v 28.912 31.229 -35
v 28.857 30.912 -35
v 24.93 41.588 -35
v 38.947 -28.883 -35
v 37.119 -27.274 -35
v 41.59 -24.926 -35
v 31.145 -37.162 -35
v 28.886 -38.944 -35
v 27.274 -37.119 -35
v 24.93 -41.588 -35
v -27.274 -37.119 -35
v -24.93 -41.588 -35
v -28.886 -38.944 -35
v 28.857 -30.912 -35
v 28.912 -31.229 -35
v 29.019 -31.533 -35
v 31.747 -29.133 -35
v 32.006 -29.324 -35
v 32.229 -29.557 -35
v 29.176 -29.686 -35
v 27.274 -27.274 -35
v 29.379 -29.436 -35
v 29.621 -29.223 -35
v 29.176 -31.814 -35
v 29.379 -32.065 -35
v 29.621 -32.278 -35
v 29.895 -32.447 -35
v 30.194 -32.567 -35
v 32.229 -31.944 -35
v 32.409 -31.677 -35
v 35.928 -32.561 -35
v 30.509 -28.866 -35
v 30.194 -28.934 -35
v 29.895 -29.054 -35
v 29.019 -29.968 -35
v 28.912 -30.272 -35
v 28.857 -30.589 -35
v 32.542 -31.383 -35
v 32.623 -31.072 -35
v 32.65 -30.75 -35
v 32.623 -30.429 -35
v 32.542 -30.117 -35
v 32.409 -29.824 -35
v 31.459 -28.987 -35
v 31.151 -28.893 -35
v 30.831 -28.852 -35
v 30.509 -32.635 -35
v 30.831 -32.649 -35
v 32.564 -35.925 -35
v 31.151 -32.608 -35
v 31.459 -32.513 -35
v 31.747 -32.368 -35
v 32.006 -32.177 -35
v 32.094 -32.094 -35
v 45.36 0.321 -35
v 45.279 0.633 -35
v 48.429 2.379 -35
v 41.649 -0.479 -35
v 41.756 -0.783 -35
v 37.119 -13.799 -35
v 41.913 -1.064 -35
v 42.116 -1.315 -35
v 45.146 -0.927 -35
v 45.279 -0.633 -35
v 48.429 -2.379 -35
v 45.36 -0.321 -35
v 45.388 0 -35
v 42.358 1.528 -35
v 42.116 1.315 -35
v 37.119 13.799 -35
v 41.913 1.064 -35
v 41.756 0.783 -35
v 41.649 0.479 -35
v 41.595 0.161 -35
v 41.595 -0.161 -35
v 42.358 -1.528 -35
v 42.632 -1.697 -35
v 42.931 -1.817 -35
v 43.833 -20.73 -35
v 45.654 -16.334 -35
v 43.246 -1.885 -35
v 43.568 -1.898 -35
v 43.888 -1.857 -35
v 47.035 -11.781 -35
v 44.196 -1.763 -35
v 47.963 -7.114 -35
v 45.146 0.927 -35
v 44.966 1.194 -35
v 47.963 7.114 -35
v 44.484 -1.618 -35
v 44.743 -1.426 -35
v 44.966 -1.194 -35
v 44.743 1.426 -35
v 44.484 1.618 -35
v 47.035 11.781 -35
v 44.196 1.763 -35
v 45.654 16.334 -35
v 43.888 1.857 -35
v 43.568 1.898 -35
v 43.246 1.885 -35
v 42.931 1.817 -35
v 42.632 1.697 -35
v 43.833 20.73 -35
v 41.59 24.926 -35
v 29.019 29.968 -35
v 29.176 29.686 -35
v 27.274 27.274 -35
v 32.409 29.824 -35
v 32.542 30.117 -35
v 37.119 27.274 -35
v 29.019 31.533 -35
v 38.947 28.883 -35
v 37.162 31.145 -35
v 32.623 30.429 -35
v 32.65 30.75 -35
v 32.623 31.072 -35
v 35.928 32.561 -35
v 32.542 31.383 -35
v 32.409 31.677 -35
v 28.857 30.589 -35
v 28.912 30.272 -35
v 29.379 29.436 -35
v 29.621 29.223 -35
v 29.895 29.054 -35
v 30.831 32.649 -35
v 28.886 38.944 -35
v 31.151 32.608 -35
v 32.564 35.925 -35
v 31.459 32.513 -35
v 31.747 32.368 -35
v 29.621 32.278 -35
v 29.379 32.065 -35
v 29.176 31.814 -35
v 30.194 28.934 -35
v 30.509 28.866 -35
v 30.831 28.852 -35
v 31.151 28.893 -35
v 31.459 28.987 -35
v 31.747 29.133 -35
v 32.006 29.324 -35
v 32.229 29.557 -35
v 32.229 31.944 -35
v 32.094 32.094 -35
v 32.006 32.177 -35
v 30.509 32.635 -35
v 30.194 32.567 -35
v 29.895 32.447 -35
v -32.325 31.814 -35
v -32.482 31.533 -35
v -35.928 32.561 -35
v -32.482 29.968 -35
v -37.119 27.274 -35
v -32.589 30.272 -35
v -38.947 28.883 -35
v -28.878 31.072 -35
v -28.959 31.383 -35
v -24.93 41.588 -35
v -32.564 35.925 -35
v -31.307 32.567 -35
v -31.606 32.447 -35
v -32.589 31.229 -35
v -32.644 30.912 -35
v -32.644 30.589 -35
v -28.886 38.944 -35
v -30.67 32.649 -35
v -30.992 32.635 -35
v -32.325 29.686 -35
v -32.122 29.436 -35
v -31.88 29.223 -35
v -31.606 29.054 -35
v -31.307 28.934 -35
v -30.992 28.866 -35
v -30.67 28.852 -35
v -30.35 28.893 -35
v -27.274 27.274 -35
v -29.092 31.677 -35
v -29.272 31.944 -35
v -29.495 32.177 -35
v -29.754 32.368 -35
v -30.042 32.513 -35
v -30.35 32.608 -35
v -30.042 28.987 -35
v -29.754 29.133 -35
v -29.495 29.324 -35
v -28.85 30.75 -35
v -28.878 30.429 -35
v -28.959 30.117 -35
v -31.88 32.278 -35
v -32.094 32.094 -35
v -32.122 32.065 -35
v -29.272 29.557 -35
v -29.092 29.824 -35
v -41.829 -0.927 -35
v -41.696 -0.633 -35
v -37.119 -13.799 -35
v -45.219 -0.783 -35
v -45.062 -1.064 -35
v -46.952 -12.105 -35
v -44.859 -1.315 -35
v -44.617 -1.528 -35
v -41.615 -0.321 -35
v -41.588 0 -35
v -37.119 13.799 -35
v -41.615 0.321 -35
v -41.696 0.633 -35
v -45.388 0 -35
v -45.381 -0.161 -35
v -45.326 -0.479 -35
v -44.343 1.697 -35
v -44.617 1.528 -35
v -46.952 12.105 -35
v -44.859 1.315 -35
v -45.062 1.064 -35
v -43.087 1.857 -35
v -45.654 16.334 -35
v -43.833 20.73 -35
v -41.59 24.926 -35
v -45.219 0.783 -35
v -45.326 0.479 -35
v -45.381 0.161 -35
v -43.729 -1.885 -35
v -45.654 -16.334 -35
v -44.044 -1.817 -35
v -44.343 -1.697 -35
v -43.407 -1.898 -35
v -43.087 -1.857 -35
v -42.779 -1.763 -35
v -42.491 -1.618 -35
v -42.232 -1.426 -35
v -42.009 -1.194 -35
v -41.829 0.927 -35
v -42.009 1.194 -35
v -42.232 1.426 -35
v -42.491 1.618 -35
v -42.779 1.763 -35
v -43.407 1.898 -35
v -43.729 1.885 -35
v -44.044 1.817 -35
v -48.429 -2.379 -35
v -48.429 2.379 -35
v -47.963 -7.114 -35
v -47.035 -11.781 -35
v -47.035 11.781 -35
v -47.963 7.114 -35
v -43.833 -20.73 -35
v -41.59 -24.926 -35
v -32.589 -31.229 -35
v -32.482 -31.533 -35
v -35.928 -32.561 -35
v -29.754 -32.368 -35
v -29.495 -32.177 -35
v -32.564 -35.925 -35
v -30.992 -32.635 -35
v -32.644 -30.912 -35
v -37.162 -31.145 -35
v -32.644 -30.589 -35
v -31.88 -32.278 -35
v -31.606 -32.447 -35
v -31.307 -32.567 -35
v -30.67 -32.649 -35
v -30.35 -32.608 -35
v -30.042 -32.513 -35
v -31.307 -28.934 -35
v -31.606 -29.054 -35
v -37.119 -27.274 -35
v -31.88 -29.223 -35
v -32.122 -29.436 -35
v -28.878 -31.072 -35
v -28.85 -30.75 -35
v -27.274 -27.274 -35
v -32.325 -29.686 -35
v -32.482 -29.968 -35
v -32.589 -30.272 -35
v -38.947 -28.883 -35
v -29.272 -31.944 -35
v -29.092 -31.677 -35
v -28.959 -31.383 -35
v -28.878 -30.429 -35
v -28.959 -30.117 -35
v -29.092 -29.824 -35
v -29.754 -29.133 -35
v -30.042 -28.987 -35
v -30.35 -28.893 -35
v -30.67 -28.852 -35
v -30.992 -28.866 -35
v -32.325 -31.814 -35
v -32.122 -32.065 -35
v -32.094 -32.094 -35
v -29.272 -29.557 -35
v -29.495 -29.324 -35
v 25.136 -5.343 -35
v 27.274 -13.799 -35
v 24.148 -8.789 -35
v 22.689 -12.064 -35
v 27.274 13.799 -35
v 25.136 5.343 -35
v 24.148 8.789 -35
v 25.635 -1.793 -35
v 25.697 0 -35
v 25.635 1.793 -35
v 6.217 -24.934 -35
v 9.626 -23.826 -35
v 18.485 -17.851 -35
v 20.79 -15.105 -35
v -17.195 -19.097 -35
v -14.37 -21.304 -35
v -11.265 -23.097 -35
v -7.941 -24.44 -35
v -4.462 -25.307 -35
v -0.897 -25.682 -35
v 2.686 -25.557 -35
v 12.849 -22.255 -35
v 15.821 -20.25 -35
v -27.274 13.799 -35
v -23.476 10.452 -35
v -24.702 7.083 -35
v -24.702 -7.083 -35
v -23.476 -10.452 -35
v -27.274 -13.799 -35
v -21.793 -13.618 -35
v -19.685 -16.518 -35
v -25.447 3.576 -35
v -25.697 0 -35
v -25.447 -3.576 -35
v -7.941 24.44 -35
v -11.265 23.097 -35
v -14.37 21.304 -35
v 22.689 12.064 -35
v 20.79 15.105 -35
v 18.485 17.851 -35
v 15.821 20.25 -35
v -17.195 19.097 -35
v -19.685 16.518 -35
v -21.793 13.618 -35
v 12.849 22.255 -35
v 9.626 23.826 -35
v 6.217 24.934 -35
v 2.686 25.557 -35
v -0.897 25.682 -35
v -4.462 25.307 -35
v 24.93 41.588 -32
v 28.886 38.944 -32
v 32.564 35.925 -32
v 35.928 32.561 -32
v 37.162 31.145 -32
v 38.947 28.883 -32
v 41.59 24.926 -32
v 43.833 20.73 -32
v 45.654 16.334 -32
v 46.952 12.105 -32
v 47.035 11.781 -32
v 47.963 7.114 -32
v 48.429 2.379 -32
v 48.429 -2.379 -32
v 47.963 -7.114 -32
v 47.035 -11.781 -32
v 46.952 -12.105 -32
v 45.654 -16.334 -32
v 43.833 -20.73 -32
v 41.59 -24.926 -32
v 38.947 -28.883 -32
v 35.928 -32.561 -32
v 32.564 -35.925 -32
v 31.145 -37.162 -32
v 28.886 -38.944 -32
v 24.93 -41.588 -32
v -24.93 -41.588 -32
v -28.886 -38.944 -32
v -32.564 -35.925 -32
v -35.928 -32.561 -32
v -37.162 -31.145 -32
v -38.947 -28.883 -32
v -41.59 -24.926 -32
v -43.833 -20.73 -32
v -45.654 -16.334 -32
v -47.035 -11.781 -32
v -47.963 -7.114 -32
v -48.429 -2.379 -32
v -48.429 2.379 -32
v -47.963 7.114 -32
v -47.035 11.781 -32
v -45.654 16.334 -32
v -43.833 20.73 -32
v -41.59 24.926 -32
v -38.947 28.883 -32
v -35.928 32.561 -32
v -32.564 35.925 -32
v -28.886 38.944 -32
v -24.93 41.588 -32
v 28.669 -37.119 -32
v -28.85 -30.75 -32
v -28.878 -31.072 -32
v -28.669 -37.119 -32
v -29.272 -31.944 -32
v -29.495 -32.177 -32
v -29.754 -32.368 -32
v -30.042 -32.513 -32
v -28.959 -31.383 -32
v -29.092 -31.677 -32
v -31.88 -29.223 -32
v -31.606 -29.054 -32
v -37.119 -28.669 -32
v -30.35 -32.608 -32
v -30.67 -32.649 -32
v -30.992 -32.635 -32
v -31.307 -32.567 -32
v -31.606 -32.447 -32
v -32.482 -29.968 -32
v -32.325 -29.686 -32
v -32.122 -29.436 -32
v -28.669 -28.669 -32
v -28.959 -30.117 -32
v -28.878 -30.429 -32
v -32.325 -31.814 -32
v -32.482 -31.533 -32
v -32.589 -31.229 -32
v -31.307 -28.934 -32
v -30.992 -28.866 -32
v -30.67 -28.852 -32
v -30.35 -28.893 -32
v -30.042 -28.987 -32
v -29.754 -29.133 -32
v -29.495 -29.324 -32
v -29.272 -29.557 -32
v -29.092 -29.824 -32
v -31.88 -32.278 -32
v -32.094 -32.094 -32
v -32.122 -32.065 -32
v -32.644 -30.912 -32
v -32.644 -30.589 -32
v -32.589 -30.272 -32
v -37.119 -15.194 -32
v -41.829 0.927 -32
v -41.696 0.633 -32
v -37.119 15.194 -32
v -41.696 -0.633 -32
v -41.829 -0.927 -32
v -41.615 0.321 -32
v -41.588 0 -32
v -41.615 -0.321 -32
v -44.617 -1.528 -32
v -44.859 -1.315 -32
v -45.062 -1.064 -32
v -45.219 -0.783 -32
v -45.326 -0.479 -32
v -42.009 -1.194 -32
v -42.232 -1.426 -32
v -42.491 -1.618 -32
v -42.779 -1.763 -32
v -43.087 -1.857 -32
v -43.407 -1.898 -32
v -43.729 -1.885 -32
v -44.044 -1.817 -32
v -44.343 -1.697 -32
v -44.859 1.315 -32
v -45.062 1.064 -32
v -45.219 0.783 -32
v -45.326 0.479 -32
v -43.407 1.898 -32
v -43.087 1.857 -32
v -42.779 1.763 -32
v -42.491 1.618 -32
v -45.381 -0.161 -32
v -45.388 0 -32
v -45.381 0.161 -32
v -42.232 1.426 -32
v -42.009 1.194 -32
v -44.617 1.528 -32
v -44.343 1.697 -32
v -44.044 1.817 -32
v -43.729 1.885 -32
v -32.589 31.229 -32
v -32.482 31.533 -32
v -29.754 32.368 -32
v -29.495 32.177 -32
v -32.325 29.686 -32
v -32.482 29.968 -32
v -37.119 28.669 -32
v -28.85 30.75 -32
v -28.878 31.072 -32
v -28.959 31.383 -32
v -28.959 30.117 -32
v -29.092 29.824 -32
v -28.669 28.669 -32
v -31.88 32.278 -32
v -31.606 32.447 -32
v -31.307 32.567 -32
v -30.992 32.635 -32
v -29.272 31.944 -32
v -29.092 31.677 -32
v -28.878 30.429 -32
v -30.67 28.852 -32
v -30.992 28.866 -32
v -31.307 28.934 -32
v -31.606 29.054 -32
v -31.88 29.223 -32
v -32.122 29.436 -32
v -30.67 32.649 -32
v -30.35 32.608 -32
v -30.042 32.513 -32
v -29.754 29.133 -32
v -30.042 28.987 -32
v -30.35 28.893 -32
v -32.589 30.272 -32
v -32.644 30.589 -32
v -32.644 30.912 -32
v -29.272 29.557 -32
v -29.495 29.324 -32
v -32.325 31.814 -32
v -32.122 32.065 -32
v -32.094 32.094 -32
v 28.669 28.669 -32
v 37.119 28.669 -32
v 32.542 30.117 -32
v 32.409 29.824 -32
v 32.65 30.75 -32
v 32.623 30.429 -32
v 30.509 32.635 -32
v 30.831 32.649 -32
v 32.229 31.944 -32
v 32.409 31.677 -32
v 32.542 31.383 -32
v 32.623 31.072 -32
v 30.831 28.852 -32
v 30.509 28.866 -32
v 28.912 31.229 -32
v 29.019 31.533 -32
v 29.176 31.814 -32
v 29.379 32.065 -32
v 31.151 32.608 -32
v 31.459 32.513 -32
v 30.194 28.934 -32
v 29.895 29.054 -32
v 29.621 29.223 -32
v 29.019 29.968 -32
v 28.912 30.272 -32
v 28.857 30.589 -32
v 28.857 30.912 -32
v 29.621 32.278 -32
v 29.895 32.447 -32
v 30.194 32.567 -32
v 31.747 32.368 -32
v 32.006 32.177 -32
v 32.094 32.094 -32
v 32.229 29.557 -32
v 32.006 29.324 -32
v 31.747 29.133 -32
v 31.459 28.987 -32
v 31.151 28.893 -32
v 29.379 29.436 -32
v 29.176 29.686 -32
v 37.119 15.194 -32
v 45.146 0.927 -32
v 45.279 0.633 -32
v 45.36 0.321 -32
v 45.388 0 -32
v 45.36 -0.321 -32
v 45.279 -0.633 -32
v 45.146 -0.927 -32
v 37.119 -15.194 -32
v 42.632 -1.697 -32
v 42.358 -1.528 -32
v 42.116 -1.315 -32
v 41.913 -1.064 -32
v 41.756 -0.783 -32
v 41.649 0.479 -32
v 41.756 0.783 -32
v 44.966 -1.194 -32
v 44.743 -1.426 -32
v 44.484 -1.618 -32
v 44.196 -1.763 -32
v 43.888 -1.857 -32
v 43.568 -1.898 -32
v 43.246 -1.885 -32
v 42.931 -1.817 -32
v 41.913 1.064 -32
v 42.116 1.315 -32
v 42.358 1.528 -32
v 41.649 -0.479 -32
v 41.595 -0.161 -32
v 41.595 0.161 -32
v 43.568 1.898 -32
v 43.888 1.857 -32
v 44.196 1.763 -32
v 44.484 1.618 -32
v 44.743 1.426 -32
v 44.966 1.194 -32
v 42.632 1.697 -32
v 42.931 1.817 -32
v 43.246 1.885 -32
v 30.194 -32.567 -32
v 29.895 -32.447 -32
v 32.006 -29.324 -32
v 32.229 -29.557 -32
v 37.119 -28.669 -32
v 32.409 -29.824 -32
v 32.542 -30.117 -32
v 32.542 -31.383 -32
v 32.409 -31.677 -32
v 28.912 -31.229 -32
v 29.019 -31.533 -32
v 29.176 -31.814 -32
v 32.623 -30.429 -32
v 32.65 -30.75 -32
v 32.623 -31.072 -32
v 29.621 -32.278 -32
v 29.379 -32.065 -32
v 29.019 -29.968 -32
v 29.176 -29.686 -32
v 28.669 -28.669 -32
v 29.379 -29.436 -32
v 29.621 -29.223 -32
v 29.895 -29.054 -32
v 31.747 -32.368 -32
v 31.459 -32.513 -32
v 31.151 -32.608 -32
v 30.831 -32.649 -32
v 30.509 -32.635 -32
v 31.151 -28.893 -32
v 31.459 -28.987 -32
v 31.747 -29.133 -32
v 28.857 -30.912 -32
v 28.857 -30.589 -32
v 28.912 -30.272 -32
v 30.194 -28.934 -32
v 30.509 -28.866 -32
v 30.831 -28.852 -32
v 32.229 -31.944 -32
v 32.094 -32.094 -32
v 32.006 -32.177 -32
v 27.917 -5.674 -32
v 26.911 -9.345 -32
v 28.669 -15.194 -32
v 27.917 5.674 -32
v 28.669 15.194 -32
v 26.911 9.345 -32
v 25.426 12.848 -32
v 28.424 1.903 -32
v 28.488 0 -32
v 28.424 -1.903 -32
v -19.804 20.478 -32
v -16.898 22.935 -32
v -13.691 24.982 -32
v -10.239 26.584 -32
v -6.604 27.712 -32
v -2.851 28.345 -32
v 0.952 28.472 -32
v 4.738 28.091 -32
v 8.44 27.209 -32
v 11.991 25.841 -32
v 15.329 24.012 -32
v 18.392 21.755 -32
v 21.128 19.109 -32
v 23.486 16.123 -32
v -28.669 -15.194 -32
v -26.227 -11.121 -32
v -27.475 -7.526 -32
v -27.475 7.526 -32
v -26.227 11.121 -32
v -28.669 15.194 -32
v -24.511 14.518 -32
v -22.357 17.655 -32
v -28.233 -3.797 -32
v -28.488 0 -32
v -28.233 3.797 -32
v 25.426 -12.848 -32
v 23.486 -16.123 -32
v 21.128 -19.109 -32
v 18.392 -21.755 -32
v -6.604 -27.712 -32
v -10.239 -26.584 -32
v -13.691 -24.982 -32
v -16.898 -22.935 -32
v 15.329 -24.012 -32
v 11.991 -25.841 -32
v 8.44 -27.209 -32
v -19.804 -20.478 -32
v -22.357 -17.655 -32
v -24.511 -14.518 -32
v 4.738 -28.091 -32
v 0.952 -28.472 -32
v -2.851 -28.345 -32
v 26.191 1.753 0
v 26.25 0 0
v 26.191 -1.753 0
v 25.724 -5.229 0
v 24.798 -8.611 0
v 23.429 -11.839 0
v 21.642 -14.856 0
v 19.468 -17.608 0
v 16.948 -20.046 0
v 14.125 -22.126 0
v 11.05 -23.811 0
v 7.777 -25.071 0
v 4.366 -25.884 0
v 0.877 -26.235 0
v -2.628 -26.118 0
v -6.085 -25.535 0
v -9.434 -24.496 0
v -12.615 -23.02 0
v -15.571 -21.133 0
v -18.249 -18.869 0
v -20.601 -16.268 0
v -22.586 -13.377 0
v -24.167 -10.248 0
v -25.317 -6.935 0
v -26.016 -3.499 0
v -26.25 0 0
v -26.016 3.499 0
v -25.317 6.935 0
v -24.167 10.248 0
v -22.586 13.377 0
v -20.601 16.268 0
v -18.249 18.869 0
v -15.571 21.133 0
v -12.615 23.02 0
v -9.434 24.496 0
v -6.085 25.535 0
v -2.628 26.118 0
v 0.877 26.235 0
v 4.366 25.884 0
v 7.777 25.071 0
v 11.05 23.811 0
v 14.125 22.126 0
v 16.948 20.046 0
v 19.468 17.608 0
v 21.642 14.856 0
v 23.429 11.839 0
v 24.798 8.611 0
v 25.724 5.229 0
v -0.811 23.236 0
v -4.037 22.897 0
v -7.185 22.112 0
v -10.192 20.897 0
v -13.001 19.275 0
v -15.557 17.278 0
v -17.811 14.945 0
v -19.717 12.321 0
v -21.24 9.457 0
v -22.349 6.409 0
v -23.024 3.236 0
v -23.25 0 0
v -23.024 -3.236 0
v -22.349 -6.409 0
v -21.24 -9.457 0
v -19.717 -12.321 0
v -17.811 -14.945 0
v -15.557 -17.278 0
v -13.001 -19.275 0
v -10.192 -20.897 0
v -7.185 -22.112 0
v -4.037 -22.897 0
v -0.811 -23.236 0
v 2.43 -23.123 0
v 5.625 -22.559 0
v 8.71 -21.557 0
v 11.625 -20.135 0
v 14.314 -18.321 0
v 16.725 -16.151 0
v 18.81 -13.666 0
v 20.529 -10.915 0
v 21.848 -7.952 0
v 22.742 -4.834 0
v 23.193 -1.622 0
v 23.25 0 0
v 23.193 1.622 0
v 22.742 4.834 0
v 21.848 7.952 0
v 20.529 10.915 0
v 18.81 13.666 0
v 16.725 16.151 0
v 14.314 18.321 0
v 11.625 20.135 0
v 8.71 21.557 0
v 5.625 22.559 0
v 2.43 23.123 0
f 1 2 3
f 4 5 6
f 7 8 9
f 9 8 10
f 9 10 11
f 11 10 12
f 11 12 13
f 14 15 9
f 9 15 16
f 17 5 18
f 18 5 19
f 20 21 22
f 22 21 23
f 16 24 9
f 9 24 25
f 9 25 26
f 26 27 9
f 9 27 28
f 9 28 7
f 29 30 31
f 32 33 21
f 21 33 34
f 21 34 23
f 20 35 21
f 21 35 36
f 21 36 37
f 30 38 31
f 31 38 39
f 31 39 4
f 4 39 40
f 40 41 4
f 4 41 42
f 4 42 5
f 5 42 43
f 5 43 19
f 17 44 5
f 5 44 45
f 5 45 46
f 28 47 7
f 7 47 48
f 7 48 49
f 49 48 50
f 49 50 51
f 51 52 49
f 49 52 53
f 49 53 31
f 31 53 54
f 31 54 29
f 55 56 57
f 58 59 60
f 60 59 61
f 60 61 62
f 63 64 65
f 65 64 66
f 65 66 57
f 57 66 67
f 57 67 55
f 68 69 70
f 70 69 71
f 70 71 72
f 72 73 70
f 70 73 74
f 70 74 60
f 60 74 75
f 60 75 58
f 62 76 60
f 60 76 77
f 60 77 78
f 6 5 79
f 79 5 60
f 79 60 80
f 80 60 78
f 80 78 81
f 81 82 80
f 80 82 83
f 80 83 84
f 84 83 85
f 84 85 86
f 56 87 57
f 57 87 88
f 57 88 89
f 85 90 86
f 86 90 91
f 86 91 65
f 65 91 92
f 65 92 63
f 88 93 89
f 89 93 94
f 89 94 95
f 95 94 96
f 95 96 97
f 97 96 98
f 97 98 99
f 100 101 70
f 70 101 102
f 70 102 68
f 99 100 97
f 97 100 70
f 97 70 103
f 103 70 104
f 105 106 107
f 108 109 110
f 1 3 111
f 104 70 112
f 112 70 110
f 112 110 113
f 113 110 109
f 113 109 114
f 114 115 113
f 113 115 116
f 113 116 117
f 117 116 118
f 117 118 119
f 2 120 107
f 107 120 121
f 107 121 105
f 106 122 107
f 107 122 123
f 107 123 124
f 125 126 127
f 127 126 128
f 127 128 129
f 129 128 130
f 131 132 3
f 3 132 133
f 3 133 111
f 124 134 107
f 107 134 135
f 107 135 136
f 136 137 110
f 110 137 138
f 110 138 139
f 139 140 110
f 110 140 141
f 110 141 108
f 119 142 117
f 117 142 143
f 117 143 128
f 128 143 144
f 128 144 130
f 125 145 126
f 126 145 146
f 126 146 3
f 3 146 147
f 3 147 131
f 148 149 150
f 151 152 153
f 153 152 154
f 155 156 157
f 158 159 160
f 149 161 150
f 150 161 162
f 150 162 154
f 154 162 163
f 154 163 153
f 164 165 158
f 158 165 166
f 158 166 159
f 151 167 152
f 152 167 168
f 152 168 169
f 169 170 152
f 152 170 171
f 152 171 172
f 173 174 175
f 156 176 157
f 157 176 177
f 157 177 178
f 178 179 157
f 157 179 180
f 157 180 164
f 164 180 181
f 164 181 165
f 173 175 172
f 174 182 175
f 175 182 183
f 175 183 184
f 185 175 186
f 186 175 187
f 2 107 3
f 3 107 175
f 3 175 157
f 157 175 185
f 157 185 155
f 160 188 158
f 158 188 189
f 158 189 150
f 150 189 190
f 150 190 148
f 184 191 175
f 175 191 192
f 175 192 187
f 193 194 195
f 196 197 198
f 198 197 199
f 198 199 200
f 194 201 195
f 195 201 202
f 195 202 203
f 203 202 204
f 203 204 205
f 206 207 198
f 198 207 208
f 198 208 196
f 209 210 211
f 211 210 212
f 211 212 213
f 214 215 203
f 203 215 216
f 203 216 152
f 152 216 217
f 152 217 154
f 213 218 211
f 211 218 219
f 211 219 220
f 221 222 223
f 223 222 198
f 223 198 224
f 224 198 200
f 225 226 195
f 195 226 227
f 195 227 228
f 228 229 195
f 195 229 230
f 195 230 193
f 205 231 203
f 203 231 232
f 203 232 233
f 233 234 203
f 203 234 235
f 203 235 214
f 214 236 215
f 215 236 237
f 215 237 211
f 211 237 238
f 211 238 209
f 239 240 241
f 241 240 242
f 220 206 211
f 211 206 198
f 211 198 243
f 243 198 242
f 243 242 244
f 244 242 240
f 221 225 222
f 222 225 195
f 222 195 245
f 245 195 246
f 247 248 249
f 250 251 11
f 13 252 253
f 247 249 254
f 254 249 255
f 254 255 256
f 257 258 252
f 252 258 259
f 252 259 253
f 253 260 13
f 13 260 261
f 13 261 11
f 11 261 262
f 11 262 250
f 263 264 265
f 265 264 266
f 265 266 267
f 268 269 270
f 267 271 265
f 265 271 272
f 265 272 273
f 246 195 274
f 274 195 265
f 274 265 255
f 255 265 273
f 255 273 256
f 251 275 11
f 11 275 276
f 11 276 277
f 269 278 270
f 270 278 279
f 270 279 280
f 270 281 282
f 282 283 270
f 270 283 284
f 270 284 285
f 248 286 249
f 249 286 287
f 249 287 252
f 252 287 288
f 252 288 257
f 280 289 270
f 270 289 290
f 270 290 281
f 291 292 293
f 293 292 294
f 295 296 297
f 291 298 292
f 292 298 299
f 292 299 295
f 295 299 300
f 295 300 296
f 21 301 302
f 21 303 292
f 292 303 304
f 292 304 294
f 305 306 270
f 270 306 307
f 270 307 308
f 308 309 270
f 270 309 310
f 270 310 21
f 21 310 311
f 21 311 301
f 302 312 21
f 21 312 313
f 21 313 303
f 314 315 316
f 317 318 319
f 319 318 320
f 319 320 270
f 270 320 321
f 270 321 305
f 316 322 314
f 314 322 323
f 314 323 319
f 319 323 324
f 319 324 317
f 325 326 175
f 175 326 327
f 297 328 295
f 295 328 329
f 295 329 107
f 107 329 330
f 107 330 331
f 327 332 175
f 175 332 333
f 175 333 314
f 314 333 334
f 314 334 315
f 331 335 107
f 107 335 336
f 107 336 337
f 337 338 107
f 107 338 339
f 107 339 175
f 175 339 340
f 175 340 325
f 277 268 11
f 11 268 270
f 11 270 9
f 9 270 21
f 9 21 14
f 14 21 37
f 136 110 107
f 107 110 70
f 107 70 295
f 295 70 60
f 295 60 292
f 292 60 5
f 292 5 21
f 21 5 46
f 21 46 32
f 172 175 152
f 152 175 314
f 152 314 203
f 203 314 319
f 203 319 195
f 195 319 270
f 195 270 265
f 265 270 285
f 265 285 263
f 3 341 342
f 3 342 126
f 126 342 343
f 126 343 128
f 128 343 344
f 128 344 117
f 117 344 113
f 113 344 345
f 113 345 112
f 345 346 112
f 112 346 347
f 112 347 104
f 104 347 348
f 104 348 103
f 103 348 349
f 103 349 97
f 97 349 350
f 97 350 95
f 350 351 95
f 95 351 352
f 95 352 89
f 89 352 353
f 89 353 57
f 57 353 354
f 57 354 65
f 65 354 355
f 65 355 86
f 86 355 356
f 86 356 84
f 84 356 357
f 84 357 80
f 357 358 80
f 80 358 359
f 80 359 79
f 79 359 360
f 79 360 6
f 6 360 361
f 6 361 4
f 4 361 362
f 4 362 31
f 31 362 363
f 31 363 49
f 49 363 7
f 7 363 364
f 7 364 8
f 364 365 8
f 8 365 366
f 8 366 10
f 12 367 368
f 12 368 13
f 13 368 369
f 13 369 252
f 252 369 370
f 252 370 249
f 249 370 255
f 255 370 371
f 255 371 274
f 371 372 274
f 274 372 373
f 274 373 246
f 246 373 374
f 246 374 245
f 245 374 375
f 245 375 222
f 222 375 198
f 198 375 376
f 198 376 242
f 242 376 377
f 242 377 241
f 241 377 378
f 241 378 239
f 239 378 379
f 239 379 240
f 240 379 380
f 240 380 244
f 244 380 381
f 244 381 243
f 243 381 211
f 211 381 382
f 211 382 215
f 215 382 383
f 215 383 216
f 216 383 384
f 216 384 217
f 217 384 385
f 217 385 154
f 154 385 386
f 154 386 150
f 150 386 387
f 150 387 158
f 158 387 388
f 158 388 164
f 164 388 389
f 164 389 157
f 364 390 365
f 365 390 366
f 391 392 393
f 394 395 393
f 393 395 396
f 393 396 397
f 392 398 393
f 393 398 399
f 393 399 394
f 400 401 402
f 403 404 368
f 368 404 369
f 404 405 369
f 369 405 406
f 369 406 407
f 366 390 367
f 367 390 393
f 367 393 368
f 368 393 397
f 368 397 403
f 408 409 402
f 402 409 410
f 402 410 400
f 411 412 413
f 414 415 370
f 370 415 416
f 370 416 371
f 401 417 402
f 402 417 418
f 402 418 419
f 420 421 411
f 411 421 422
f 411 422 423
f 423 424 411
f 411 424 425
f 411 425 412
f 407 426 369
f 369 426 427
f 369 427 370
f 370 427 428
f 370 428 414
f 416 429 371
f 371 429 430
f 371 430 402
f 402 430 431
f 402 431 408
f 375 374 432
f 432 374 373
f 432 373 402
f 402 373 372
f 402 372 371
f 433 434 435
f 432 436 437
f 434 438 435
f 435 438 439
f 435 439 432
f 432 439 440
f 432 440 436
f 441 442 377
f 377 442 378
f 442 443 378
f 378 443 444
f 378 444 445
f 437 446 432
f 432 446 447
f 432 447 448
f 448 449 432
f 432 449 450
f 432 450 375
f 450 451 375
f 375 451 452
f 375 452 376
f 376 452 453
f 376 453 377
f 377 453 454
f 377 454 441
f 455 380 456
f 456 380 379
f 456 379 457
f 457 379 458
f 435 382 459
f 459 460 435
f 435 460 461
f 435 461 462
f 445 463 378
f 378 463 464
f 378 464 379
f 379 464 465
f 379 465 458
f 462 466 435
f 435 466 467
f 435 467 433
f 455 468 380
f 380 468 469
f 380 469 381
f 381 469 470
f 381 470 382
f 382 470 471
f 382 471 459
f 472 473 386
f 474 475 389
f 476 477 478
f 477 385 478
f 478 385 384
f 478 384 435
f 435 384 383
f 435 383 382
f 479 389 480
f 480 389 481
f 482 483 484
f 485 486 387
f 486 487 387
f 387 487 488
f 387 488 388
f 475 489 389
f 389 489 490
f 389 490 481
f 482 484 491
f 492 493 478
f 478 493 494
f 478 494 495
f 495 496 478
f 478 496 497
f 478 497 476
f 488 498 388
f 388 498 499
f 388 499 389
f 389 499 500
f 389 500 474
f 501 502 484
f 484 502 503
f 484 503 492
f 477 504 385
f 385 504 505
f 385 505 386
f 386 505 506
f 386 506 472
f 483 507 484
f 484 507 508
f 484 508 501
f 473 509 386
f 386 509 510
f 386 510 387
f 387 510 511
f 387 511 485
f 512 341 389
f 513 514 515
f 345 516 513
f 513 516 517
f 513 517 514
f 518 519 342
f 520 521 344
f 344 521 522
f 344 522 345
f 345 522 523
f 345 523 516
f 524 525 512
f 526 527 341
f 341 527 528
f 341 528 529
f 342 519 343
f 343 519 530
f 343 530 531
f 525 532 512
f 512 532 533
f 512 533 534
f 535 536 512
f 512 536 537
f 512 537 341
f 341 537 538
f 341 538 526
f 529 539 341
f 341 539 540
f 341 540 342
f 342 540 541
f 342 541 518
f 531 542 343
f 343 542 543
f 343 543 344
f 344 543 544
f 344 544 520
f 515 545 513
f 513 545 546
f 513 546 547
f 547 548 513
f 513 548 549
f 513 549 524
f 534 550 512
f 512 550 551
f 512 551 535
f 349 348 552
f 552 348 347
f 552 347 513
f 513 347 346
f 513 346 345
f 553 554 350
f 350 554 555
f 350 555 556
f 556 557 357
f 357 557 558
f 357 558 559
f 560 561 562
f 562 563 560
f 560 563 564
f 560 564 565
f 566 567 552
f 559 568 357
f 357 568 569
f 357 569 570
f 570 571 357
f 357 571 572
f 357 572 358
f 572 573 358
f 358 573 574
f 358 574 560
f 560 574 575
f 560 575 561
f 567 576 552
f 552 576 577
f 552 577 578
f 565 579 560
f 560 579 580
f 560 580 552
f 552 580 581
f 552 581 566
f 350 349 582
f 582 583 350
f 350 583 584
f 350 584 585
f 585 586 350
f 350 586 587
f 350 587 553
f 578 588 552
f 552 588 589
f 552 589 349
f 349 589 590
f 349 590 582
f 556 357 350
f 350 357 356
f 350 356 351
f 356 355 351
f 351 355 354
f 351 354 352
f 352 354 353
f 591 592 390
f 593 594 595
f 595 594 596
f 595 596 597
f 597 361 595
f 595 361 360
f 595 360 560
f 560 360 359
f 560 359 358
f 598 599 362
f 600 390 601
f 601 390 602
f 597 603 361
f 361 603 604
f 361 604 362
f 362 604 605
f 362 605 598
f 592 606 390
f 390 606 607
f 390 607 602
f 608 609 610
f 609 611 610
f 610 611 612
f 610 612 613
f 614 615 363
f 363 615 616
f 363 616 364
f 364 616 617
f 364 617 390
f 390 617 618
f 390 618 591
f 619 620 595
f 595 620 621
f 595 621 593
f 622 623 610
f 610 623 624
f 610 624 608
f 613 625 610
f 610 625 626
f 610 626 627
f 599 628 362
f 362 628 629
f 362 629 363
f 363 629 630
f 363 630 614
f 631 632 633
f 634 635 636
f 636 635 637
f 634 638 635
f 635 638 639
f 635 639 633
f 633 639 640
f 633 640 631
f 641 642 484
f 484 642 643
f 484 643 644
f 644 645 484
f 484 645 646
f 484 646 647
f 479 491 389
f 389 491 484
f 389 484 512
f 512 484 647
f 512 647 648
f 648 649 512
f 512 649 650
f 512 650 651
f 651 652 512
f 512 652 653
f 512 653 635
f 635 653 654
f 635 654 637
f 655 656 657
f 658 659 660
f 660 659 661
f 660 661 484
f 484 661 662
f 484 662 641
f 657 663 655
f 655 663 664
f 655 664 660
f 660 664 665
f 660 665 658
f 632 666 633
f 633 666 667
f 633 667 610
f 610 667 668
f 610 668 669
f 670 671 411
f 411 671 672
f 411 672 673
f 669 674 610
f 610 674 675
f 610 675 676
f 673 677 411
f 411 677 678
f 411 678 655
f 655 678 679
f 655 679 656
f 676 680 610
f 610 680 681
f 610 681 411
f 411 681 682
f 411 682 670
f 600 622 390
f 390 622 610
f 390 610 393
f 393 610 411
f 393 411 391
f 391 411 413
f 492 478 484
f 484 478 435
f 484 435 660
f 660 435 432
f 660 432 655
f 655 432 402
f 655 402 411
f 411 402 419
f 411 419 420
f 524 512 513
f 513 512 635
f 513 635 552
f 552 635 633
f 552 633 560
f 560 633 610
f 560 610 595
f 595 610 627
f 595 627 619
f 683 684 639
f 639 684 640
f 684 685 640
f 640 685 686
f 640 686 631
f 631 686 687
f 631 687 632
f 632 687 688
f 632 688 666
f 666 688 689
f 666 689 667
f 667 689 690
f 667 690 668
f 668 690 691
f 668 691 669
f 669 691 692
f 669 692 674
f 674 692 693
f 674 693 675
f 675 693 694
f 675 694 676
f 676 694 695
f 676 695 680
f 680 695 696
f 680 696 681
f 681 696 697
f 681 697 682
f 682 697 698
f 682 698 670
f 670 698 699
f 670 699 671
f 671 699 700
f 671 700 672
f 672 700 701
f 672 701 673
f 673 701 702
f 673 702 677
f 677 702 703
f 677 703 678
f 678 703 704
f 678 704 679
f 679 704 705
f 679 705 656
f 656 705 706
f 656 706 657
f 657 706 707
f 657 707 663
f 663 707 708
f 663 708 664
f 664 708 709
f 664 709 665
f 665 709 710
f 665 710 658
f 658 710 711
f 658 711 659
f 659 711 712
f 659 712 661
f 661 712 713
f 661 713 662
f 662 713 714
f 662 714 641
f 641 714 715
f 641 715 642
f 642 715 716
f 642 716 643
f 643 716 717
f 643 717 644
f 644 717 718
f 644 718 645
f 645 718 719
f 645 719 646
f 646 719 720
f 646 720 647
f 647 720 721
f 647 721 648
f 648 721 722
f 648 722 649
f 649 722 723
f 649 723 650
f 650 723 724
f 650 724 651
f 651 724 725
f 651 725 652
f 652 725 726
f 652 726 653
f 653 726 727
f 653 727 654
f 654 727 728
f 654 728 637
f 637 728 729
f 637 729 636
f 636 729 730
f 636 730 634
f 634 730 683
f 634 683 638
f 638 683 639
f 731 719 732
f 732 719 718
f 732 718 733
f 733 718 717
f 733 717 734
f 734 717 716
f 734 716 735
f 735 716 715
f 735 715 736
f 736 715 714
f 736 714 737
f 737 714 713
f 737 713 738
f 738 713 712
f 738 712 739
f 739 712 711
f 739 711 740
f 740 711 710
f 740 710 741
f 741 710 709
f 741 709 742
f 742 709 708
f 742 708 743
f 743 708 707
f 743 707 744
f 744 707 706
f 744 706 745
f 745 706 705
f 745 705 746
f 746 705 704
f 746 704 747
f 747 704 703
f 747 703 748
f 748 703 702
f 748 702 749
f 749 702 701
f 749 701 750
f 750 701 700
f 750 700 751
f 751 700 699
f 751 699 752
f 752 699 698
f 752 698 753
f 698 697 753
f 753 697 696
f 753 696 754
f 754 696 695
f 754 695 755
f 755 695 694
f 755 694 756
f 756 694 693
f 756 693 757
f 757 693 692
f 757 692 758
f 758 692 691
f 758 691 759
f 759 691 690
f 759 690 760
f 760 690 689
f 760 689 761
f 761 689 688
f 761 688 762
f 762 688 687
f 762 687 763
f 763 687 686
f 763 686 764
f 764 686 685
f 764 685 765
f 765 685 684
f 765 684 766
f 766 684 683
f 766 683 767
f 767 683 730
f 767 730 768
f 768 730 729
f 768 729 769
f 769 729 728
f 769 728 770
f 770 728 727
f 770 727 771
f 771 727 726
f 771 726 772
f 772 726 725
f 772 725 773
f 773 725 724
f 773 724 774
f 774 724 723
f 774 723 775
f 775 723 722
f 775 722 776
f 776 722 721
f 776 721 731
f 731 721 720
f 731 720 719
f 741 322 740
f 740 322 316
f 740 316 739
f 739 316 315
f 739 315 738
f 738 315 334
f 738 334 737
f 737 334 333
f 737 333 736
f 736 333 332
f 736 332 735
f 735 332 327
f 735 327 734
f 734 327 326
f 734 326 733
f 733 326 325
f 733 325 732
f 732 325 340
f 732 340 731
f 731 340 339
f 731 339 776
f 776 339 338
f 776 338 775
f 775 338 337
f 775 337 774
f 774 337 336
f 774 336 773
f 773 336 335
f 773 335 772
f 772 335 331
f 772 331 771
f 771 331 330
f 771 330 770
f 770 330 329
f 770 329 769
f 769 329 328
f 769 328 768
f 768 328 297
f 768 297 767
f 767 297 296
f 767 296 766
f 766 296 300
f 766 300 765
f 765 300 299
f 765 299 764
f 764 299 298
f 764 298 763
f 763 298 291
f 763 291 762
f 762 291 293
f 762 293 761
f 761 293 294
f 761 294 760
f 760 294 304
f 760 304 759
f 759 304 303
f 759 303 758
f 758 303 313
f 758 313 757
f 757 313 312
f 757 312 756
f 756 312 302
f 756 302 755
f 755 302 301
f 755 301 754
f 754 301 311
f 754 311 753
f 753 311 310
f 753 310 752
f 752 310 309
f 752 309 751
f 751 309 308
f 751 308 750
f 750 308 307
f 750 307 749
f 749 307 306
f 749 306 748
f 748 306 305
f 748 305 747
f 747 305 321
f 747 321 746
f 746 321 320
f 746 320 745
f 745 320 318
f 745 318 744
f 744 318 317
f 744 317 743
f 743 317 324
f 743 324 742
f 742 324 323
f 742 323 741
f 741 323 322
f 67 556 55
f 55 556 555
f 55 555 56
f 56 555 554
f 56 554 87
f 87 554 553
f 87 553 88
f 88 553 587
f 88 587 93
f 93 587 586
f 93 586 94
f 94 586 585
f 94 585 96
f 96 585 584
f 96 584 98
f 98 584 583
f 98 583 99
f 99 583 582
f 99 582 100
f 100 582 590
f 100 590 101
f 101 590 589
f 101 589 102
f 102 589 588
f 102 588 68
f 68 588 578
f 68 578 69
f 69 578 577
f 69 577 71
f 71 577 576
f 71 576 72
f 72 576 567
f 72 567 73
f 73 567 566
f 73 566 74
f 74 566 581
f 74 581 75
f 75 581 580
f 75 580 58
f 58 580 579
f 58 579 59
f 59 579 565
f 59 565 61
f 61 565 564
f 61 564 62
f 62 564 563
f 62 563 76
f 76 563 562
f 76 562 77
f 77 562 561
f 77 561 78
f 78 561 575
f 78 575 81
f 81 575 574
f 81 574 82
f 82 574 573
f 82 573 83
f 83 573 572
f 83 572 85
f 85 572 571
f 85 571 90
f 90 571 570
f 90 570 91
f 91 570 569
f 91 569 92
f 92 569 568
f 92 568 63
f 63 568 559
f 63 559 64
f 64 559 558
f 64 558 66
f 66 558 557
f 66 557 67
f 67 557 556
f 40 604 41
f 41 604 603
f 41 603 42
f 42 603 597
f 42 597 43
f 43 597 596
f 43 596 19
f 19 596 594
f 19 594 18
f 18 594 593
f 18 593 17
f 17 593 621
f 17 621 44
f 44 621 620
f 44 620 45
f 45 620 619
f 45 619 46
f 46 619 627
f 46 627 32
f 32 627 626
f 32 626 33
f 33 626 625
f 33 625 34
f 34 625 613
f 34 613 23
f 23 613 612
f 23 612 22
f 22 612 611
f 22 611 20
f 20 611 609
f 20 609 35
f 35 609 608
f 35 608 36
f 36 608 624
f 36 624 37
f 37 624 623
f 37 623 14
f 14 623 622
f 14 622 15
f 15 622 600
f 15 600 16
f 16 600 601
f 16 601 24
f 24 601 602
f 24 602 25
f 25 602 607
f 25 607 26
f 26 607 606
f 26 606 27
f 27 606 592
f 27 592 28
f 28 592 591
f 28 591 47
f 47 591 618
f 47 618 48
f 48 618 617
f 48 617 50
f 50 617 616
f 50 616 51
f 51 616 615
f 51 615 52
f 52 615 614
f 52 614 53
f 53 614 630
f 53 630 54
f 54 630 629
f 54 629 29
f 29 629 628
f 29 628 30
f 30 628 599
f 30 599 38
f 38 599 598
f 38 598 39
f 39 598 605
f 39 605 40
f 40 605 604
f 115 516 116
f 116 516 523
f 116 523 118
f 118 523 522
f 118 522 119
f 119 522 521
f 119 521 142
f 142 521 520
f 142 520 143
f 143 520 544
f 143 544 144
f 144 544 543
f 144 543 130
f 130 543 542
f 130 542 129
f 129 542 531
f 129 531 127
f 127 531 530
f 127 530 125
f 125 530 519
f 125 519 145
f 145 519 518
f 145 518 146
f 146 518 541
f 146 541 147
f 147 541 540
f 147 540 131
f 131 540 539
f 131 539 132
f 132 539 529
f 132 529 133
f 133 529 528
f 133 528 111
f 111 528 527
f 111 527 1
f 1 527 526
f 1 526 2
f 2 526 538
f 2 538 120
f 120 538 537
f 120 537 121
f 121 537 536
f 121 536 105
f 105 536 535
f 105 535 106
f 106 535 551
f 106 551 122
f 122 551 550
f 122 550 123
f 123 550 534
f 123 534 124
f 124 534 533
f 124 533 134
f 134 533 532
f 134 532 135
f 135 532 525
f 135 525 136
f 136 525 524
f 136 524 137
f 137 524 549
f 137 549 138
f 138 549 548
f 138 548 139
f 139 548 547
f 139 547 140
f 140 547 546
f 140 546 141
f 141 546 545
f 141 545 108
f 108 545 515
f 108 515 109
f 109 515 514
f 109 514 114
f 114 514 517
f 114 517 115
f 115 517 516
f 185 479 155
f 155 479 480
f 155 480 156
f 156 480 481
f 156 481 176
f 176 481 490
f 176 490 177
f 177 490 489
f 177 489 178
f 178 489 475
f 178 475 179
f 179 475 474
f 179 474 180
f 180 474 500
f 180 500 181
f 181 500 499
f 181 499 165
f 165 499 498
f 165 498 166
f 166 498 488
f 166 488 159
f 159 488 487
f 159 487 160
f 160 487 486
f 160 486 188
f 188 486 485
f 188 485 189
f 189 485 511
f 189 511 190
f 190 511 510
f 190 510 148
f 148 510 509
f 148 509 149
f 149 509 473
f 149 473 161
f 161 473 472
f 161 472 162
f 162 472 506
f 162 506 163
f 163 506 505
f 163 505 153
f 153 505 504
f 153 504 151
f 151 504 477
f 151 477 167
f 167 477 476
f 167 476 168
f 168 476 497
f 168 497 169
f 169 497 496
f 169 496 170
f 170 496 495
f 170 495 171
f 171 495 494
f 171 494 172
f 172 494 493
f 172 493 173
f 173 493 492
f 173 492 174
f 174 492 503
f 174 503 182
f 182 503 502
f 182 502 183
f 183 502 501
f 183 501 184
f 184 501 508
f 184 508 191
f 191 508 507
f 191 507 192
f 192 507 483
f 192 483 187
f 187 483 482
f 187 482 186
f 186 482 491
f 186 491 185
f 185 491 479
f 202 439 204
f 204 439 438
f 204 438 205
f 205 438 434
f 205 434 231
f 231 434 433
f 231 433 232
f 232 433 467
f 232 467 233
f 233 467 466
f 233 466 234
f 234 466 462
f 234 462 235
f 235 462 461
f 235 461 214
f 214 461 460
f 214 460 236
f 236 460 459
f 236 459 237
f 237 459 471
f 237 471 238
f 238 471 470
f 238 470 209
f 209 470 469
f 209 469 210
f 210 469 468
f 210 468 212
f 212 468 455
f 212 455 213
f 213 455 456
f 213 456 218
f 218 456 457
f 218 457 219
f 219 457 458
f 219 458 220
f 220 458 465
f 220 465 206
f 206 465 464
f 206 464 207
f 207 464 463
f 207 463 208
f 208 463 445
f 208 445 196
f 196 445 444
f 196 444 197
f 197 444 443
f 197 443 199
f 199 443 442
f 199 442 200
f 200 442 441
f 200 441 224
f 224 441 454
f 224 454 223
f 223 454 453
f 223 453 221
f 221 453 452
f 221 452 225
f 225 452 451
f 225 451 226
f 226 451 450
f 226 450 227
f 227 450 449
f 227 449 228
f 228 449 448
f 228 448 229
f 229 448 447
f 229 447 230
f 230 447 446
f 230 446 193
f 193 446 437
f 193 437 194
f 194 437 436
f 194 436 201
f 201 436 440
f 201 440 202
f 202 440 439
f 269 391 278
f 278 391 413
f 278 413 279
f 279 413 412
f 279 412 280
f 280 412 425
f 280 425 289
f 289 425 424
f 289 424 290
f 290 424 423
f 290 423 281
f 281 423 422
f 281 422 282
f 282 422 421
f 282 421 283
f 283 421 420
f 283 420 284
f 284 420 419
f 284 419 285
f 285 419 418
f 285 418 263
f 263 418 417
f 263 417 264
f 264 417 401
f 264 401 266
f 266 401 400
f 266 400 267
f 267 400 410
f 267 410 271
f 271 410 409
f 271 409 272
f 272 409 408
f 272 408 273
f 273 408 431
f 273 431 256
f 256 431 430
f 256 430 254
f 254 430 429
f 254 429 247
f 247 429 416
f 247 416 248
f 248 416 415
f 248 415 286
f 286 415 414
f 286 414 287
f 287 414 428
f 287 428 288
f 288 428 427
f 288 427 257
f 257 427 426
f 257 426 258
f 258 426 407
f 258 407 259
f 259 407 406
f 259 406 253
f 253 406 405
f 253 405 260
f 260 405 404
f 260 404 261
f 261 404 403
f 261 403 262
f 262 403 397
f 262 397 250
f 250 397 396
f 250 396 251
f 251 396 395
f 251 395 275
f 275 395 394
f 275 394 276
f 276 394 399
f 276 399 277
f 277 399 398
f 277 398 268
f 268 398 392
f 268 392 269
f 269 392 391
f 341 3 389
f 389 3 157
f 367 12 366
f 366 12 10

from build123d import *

# Parameters (mm, degrees)
SKETCH3_R          = 1.9
CUT_EXTRUDE1_DEPTH = 4
CIRPATTERN1_COUNT  = 8
SKETCH4_W          = 196.975315964
SKETCH4_H          = 183.175315964
SKETCH4_W_2        = 96.975315964
SKETCH4_H_2        = 83.175315964
CUT_EXTRUDE2_DEPTH = 4


with BuildPart() as part:
    # Sketch2 → Revolve1 (revolve)
    with BuildSketch(Plane(origin=(0, 0, 0), x_dir=(1, 0, 0), z_dir=(0, 1, 0))):
        Polygon((-28.697438418, 35), (-26.25, 0), (-23.25, 0), (-25.697438418, 35), align=None)
        Polygon((-28.487657982, 32), (-28.697438418, 35), (-48.487657982, 35), (-48.487657982, 32), align=None)
    revolve(axis=Axis((0, 0, 0), (0, 0, -1)))

    # Sketch3 → Cut-Extrude1 (cut, through all)
    with BuildSketch(Plane.XY.offset(-32)):
        with Locations((43.487657982, 0)):
            Circle(SKETCH3_R)
    cut_extrude1 = extrude(amount=-CUT_EXTRUDE1_DEPTH, mode=Mode.SUBTRACT)

    # CirPattern1: Cut-Extrude1 ×8 about axis
    cirpattern1_axis = Axis((0, 0, 0), (0, 0, 1))
    for i in range(1, CIRPATTERN1_COUNT):
        add(cut_extrude1.rotate(cirpattern1_axis, i * 360 / CIRPATTERN1_COUNT), mode=Mode.SUBTRACT)

    # Sketch4 → Cut-Extrude2 (cut, through all)
    with BuildSketch(Plane.XY.offset(-32)):
        Rectangle(SKETCH4_W, SKETCH4_H)
        Rectangle(SKETCH4_W_2, SKETCH4_H_2, mode=Mode.SUBTRACT)
    extrude(amount=-CUT_EXTRUDE2_DEPTH, mode=Mode.SUBTRACT)


solid = part.part
